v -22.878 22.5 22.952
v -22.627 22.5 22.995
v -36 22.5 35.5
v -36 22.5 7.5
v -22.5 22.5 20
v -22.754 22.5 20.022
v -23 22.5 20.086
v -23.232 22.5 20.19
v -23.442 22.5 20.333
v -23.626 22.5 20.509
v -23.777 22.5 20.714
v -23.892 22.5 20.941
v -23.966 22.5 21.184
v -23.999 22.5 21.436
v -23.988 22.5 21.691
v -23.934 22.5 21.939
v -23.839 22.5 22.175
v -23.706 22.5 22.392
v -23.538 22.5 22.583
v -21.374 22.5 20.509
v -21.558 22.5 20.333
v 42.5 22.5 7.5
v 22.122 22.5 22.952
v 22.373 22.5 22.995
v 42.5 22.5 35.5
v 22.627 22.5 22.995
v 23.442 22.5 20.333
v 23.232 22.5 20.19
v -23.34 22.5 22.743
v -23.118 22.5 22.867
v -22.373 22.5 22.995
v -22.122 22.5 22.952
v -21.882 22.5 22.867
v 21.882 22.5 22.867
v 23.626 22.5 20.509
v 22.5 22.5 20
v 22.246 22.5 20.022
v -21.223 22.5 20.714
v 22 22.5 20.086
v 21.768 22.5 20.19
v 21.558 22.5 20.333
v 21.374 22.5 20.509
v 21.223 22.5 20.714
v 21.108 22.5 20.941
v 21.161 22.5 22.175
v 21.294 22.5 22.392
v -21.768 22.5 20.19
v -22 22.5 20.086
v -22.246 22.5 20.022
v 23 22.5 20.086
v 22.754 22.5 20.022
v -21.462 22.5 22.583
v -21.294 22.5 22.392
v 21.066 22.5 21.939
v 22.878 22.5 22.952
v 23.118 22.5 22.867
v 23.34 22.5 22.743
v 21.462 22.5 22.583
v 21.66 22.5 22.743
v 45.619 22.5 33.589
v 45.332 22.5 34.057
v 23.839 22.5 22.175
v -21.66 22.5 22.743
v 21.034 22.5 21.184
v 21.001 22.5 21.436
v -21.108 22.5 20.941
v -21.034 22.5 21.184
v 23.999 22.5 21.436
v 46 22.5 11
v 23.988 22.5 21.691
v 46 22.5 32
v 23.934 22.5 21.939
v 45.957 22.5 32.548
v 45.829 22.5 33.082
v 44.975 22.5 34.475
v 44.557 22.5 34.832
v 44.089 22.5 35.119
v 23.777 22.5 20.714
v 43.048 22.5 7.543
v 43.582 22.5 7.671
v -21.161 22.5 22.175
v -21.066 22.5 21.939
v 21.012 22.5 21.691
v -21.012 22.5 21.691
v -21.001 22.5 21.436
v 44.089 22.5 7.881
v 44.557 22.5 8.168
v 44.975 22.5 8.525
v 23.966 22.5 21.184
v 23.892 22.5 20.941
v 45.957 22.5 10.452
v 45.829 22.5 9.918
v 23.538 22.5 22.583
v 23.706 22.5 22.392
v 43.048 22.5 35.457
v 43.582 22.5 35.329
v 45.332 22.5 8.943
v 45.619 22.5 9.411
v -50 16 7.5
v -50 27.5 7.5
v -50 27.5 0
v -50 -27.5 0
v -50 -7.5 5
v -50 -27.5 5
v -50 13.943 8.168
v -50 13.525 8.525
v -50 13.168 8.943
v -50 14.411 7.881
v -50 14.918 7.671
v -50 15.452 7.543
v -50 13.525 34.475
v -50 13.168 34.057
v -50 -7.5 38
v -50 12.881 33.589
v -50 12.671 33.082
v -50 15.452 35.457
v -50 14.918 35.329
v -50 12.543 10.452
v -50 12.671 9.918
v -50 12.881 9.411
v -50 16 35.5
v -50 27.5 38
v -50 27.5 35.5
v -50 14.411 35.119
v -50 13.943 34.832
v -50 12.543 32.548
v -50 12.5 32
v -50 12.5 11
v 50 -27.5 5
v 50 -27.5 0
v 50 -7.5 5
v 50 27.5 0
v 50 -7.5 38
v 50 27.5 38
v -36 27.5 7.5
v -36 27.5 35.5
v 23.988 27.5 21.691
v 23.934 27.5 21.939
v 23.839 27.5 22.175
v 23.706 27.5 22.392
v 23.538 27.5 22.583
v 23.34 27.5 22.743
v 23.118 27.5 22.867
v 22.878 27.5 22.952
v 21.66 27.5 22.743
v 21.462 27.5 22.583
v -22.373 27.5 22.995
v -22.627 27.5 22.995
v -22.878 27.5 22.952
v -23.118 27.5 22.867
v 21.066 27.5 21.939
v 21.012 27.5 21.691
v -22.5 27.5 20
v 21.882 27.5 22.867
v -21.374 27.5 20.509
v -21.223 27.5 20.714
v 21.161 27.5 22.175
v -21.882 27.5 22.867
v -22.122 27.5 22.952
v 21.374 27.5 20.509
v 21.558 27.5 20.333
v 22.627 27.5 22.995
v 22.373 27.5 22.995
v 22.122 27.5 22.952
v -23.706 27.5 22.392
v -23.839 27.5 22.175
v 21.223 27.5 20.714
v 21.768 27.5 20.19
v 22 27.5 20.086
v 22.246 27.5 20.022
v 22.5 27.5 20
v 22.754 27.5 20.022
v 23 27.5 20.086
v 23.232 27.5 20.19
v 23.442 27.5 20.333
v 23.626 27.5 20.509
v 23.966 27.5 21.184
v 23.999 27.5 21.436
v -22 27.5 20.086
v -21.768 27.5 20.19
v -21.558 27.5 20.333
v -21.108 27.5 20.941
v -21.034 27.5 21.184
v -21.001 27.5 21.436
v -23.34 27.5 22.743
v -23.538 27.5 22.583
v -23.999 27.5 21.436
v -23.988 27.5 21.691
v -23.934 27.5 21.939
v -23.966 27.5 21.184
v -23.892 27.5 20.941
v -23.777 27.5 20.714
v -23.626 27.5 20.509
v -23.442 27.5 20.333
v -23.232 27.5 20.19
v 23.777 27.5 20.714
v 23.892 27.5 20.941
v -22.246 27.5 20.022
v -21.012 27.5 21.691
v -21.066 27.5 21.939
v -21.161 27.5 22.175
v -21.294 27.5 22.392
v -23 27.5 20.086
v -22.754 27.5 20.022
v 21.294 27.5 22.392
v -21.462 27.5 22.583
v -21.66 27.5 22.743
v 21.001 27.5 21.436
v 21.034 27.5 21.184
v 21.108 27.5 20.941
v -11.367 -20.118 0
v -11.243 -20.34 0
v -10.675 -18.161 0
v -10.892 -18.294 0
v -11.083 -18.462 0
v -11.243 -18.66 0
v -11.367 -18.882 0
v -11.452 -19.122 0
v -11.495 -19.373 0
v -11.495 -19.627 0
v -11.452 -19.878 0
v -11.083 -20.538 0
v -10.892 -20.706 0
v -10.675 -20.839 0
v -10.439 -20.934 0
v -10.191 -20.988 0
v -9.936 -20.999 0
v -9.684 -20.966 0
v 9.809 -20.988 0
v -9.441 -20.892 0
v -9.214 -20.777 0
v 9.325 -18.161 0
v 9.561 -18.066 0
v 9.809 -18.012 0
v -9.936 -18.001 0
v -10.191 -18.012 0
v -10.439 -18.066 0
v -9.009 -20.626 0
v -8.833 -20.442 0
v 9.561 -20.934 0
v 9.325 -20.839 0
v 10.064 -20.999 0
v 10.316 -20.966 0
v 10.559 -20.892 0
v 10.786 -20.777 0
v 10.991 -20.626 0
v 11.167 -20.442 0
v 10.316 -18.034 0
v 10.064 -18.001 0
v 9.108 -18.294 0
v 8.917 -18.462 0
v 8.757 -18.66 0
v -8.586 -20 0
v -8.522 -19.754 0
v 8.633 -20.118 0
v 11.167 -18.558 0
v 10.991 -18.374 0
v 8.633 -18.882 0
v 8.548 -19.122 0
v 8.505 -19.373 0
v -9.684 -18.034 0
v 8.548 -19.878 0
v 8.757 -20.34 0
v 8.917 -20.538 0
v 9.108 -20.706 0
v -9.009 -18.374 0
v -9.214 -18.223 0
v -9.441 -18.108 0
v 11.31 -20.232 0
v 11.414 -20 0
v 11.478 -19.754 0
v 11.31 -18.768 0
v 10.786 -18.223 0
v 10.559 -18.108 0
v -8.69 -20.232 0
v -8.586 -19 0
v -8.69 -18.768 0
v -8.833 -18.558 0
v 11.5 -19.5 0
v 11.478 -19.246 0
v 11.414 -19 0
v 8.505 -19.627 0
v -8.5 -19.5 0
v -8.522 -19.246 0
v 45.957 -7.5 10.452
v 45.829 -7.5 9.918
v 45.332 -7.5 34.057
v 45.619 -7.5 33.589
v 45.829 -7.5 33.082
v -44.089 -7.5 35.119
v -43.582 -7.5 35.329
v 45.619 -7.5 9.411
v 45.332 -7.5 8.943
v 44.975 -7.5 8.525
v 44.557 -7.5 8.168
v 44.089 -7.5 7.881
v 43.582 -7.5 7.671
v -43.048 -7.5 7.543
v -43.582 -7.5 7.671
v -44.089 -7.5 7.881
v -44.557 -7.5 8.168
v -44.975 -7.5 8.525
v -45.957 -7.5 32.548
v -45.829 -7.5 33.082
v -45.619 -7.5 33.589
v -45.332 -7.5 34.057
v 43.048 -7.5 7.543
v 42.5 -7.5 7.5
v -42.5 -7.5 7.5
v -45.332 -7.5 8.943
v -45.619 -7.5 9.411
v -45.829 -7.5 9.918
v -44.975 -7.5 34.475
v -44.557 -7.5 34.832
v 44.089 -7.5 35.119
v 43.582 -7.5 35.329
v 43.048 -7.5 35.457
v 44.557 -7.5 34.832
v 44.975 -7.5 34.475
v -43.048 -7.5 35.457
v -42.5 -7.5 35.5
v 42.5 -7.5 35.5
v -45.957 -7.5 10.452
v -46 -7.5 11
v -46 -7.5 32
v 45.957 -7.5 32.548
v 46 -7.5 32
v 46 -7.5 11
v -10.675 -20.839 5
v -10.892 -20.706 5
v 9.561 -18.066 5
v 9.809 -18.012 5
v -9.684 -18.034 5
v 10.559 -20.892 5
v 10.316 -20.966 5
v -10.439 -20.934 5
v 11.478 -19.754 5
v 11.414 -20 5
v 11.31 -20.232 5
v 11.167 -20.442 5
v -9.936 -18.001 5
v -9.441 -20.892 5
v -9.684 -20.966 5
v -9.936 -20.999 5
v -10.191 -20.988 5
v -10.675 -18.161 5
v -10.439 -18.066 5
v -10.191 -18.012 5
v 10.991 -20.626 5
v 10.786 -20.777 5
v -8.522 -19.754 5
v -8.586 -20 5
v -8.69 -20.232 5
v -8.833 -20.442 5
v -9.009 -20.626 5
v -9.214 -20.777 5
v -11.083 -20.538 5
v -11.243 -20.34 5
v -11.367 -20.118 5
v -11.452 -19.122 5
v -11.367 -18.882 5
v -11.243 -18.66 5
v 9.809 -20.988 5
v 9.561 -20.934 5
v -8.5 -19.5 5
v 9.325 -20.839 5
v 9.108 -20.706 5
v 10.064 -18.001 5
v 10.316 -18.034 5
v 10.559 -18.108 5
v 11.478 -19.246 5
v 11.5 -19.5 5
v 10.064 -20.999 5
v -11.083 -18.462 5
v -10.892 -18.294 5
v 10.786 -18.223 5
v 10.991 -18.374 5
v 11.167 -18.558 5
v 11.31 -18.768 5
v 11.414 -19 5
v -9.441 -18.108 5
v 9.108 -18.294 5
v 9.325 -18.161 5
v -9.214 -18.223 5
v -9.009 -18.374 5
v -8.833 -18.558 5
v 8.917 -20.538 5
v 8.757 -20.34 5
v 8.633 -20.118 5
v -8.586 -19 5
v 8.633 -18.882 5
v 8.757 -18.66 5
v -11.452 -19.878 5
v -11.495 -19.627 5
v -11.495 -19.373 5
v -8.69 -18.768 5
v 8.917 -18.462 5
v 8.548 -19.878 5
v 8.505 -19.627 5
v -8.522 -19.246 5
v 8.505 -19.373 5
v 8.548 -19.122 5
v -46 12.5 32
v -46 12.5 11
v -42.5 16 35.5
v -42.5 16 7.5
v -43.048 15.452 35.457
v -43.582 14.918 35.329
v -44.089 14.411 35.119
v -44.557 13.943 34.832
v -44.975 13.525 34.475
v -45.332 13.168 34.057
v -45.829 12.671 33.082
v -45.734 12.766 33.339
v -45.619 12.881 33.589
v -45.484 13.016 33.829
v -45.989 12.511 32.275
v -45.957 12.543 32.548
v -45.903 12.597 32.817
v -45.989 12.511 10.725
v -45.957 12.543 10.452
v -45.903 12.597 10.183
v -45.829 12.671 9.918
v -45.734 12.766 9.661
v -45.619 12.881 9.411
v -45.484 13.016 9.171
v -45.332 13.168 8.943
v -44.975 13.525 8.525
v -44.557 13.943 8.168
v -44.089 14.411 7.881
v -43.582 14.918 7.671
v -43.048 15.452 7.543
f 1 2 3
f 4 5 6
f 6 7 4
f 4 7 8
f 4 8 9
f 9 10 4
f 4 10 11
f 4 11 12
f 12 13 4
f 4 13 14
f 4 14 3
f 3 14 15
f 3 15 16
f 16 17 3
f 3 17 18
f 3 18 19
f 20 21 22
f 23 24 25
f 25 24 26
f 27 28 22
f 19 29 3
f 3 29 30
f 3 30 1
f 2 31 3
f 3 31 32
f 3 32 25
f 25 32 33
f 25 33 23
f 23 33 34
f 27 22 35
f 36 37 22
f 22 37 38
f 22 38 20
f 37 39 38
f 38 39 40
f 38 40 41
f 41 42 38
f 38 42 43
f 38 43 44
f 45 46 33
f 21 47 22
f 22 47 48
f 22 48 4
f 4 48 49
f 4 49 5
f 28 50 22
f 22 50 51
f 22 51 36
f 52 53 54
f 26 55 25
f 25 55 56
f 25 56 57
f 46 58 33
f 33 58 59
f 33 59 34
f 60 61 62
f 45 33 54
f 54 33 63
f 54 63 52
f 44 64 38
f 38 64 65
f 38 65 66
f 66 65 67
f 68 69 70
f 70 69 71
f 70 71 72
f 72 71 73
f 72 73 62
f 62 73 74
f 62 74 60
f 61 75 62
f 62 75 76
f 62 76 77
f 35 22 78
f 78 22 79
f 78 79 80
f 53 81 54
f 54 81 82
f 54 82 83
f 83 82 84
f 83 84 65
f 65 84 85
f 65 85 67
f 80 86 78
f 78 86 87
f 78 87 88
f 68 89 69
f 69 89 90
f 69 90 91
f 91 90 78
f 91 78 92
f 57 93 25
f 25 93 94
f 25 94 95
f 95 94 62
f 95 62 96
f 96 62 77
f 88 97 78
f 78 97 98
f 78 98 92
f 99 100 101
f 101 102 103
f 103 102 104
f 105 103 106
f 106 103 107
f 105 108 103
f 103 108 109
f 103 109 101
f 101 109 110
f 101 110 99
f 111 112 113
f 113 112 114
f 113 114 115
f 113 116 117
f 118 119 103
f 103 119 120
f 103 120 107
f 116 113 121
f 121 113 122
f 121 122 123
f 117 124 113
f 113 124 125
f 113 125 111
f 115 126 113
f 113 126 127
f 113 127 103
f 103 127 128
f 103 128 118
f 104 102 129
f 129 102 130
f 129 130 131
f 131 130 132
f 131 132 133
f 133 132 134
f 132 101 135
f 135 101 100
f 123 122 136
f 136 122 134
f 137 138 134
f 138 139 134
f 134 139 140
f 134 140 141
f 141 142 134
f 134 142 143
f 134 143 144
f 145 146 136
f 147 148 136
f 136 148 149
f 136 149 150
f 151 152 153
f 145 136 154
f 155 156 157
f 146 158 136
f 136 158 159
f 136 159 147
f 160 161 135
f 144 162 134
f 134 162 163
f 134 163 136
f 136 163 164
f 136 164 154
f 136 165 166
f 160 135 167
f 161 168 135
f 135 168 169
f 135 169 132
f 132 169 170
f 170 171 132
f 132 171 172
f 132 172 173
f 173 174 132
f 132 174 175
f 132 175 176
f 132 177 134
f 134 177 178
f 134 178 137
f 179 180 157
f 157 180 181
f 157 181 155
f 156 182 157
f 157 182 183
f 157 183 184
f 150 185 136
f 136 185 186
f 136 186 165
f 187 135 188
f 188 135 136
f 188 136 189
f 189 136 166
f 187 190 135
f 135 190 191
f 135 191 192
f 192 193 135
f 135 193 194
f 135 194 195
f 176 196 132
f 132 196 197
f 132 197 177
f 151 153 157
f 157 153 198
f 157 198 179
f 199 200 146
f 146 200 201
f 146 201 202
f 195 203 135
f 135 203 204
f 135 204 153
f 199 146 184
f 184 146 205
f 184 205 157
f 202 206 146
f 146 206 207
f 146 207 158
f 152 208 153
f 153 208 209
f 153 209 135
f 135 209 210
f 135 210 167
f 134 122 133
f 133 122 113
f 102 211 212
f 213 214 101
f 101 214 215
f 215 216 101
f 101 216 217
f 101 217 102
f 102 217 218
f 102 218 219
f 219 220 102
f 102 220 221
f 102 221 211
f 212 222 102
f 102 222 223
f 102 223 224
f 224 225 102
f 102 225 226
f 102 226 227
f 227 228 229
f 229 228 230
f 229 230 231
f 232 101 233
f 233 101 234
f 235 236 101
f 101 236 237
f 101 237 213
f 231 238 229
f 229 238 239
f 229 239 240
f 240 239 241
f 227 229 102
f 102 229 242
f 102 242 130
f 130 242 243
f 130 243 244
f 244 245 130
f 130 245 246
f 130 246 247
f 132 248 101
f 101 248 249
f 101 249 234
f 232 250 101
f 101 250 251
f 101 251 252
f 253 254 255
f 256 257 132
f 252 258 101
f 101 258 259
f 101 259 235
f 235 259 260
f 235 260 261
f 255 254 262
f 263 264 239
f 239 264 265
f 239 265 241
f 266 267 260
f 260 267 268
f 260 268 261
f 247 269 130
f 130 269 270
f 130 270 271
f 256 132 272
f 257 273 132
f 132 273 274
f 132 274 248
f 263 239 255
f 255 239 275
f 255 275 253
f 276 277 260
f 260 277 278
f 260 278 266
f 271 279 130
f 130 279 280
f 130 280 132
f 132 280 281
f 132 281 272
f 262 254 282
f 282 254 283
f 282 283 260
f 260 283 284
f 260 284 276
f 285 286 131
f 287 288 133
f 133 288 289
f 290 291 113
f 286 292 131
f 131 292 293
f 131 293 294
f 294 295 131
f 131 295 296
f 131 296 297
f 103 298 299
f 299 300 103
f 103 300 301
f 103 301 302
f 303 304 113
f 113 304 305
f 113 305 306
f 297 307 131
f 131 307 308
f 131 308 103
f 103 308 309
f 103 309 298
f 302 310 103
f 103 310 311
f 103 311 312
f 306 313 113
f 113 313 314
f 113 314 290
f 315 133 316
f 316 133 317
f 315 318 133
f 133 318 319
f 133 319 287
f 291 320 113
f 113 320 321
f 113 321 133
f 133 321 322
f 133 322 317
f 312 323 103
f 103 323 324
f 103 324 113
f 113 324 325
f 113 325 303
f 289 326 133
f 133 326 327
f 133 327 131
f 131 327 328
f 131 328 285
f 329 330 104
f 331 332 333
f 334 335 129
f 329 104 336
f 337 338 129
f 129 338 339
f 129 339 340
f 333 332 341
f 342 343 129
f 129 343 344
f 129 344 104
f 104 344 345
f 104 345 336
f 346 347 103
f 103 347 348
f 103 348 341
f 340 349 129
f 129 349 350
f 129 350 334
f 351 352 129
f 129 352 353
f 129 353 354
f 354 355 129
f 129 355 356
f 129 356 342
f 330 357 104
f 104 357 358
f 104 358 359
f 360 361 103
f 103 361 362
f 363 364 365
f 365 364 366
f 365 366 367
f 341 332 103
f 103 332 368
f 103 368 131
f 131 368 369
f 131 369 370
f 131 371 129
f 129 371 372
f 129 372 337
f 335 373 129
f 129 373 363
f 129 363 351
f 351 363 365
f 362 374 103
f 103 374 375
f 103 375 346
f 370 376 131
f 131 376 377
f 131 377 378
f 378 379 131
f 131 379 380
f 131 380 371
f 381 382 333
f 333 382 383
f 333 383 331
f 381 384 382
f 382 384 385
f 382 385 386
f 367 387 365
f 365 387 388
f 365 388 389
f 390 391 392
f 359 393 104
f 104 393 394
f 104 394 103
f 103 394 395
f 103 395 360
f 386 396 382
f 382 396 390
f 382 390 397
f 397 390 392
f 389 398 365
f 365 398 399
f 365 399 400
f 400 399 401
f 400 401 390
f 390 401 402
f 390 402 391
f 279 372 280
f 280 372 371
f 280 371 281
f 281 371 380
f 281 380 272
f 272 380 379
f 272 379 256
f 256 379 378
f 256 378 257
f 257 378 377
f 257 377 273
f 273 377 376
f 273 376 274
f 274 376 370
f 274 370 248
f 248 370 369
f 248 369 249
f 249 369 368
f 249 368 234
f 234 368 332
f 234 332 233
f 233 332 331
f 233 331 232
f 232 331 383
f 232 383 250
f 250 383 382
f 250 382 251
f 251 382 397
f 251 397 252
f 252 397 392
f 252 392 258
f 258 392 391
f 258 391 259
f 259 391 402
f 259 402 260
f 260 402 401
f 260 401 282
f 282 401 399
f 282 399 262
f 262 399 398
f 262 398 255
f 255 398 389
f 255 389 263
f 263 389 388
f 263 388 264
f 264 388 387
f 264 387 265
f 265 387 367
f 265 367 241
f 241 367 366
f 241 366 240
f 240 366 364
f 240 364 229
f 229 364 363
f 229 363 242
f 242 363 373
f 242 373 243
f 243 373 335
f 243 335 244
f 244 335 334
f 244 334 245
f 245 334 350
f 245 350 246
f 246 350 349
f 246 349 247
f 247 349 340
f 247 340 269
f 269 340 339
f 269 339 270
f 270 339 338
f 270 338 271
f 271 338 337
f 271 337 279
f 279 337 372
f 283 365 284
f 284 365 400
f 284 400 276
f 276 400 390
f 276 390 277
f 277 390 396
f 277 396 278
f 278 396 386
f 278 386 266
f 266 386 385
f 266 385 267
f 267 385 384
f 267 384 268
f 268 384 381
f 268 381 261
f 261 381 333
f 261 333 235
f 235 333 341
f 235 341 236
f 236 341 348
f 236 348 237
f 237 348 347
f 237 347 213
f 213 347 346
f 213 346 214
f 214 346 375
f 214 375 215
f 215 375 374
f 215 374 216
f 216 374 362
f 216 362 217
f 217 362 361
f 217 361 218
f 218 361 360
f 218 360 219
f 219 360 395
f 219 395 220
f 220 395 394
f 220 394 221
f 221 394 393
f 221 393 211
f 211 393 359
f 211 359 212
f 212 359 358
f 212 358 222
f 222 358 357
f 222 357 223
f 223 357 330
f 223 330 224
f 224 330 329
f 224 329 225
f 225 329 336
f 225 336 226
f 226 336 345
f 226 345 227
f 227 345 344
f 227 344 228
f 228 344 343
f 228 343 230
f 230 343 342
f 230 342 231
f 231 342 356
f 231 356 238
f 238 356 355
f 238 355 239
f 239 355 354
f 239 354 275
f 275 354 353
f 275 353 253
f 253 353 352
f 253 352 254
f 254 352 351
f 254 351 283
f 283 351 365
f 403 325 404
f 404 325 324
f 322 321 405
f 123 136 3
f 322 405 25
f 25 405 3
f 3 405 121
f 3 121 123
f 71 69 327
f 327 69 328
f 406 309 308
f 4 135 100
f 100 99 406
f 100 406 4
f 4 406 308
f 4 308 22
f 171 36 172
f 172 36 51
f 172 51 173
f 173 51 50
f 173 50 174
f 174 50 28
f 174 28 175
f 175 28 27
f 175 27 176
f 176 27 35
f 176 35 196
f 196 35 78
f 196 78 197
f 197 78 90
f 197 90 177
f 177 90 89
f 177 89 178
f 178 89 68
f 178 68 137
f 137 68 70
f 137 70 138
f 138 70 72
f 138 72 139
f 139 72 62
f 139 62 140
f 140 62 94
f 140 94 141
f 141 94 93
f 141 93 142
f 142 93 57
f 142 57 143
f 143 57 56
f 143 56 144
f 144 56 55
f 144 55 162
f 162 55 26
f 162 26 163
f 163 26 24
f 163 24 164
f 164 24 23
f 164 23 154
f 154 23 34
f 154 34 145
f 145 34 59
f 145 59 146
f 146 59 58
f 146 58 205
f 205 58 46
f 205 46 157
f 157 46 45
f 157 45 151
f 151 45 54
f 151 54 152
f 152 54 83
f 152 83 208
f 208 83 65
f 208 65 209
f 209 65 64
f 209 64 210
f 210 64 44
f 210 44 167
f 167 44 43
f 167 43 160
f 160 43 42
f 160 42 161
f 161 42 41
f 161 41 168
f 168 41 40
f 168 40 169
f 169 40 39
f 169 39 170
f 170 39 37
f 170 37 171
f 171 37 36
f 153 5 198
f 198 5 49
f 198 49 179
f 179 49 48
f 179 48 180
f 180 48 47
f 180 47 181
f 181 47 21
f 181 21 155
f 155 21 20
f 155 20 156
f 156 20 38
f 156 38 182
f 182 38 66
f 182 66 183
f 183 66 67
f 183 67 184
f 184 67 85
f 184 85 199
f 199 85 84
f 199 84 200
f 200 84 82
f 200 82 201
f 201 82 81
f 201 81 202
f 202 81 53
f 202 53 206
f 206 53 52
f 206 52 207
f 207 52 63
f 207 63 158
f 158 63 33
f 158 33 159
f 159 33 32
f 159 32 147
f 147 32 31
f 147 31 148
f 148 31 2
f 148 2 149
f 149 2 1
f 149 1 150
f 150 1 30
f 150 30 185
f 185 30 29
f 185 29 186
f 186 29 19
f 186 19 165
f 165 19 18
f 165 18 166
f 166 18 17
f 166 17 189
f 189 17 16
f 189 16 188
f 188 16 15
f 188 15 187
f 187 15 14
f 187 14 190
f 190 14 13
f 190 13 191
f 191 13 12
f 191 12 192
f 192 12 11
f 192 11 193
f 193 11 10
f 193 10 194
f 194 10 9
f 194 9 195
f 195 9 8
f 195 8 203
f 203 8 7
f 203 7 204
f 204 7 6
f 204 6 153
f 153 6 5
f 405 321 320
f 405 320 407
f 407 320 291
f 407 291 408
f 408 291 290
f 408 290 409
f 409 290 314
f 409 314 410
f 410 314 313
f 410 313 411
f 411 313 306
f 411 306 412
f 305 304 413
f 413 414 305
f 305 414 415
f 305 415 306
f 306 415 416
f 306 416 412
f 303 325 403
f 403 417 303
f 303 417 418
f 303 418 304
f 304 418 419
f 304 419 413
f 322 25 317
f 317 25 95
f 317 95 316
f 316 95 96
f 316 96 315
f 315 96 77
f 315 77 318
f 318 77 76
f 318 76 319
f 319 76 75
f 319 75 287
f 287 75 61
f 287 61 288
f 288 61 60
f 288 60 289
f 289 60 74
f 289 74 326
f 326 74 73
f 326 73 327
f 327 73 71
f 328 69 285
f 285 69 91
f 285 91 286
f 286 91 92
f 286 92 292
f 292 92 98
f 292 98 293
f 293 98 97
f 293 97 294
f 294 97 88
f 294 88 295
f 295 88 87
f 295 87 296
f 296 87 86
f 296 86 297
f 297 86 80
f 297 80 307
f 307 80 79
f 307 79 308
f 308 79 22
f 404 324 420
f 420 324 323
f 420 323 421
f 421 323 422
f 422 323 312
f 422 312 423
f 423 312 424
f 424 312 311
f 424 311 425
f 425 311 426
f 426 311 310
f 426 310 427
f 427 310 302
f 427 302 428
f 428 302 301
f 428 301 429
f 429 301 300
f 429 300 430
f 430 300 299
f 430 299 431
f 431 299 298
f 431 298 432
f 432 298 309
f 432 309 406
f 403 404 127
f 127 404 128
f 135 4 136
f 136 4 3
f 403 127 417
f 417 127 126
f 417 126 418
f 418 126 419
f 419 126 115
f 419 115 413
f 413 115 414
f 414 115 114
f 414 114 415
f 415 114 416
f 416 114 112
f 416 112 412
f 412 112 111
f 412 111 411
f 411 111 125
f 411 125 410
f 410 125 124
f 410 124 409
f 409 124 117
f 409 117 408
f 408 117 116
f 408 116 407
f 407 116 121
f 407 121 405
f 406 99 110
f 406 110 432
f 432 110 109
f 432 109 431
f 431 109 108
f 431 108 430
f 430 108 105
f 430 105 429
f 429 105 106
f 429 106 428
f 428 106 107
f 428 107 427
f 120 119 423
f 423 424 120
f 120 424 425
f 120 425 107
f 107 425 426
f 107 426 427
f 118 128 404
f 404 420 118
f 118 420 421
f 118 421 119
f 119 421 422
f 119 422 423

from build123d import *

# Parameters (mm, degrees)
SKIZZE1_W                       = 100
SKIZZE1_H                       = 55
AUFSATZ_LINEAR_AUSTRAGEN1_DEPTH = 38
SKIZZE2_W                       = 100
SKIZZE2_H                       = 20
SCHNITT_LINEAR_AUSTRAGEN1_DEPTH = 33
SKIZZE4_R                       = 1.5
SCHNITT_LINEAR_AUSTRAGEN2_DEPTH = 66.918510299
SKIZZE5_W                       = 92
SKIZZE5_H                       = 28
SCHNITT_LINEAR_AUSTRAGEN3_DEPTH = 30
SKIZZE6_R                       = 1.5
SCHNITT_LINEAR_AUSTRAGEN4_DEPTH = 81.274528962
VERRUNDUNG1_R                   = 3.5
SKIZZE7_W                       = 28
SKIZZE7_H                       = 15
SCHNITT_LINEAR_AUSTRAGEN5_DEPTH = 14
VERRUNDUNG5_R                   = 3.5


with BuildPart() as part:
    # Skizze1 → Aufsatz-Linear austragen1 (new body)
    with BuildSketch(Plane.XY):
        Rectangle(SKIZZE1_W, SKIZZE1_H)
    extrude(amount=AUFSATZ_LINEAR_AUSTRAGEN1_DEPTH)

    # Skizze2 → Schnitt-Linear austragen1 (cut)
    with BuildSketch(Plane.XY.offset(38)):
        with Locations((0, -17.5)):
            Rectangle(SKIZZE2_W, SKIZZE2_H)
    extrude(amount=-SCHNITT_LINEAR_AUSTRAGEN1_DEPTH, mode=Mode.SUBTRACT)

    # Skizze4 → Schnitt-Linear austragen2 (cut, through all)
    with BuildSketch(Plane.XY.offset(5)):
        with Locations((-10, -19.5)):
            Circle(SKIZZE4_R)
        with Locations((10, -19.5)):
            Circle(SKIZZE4_R)
    extrude(amount=-SCHNITT_LINEAR_AUSTRAGEN2_DEPTH, mode=Mode.SUBTRACT)

    # Skizze5 → Schnitt-Linear austragen3 (cut)
    with BuildSketch(Plane.XZ.offset(7.5)):
        with Locations((0, 21.5)):
            Rectangle(SKIZZE5_W, SKIZZE5_H)
    extrude(amount=-SCHNITT_LINEAR_AUSTRAGEN3_DEPTH, mode=Mode.SUBTRACT)

    # Skizze6 → Schnitt-Linear austragen4 (cut, through all)
    with BuildSketch(Plane.XZ.offset(-22.5)):
        with Locations(Location((-22.5, 21.5, 0), (0, 0, 270))):
            Circle(SKIZZE6_R)
        with Locations(Location((22.5, 21.5, 0), (0, 0, 270))):
            Circle(SKIZZE6_R)
    extrude(amount=-SCHNITT_LINEAR_AUSTRAGEN4_DEPTH, mode=Mode.SUBTRACT)

    # Verrundung1
    verrundung1_edges = [part.edges().sort_by_distance(p)[0] for p in [
        (-46, 7.5, 7.5),
        (-46, 7.5, 35.5),
        (46, 7.5, 35.5),
        (46, 7.5, 7.5),
    ]]
    fillet(verrundung1_edges, radius=VERRUNDUNG1_R)

    # Skizze7 → Schnitt-Linear austragen5 (cut)
    with BuildSketch(Plane.ZY.offset(50)):
        with Locations((21.5, 20)):
            Rectangle(SKIZZE7_W, SKIZZE7_H)
    extrude(amount=-SCHNITT_LINEAR_AUSTRAGEN5_DEPTH, mode=Mode.SUBTRACT)

    # Verrundung5
    verrundung5_edges = [part.edges().sort_by_distance(p)[0] for p in [
        (-46.25, 12.5, 35.5),
        (-46.25, 12.5, 7.5),
    ]]
    fillet(verrundung5_edges, radius=VERRUNDUNG5_R)


solid = part.part
